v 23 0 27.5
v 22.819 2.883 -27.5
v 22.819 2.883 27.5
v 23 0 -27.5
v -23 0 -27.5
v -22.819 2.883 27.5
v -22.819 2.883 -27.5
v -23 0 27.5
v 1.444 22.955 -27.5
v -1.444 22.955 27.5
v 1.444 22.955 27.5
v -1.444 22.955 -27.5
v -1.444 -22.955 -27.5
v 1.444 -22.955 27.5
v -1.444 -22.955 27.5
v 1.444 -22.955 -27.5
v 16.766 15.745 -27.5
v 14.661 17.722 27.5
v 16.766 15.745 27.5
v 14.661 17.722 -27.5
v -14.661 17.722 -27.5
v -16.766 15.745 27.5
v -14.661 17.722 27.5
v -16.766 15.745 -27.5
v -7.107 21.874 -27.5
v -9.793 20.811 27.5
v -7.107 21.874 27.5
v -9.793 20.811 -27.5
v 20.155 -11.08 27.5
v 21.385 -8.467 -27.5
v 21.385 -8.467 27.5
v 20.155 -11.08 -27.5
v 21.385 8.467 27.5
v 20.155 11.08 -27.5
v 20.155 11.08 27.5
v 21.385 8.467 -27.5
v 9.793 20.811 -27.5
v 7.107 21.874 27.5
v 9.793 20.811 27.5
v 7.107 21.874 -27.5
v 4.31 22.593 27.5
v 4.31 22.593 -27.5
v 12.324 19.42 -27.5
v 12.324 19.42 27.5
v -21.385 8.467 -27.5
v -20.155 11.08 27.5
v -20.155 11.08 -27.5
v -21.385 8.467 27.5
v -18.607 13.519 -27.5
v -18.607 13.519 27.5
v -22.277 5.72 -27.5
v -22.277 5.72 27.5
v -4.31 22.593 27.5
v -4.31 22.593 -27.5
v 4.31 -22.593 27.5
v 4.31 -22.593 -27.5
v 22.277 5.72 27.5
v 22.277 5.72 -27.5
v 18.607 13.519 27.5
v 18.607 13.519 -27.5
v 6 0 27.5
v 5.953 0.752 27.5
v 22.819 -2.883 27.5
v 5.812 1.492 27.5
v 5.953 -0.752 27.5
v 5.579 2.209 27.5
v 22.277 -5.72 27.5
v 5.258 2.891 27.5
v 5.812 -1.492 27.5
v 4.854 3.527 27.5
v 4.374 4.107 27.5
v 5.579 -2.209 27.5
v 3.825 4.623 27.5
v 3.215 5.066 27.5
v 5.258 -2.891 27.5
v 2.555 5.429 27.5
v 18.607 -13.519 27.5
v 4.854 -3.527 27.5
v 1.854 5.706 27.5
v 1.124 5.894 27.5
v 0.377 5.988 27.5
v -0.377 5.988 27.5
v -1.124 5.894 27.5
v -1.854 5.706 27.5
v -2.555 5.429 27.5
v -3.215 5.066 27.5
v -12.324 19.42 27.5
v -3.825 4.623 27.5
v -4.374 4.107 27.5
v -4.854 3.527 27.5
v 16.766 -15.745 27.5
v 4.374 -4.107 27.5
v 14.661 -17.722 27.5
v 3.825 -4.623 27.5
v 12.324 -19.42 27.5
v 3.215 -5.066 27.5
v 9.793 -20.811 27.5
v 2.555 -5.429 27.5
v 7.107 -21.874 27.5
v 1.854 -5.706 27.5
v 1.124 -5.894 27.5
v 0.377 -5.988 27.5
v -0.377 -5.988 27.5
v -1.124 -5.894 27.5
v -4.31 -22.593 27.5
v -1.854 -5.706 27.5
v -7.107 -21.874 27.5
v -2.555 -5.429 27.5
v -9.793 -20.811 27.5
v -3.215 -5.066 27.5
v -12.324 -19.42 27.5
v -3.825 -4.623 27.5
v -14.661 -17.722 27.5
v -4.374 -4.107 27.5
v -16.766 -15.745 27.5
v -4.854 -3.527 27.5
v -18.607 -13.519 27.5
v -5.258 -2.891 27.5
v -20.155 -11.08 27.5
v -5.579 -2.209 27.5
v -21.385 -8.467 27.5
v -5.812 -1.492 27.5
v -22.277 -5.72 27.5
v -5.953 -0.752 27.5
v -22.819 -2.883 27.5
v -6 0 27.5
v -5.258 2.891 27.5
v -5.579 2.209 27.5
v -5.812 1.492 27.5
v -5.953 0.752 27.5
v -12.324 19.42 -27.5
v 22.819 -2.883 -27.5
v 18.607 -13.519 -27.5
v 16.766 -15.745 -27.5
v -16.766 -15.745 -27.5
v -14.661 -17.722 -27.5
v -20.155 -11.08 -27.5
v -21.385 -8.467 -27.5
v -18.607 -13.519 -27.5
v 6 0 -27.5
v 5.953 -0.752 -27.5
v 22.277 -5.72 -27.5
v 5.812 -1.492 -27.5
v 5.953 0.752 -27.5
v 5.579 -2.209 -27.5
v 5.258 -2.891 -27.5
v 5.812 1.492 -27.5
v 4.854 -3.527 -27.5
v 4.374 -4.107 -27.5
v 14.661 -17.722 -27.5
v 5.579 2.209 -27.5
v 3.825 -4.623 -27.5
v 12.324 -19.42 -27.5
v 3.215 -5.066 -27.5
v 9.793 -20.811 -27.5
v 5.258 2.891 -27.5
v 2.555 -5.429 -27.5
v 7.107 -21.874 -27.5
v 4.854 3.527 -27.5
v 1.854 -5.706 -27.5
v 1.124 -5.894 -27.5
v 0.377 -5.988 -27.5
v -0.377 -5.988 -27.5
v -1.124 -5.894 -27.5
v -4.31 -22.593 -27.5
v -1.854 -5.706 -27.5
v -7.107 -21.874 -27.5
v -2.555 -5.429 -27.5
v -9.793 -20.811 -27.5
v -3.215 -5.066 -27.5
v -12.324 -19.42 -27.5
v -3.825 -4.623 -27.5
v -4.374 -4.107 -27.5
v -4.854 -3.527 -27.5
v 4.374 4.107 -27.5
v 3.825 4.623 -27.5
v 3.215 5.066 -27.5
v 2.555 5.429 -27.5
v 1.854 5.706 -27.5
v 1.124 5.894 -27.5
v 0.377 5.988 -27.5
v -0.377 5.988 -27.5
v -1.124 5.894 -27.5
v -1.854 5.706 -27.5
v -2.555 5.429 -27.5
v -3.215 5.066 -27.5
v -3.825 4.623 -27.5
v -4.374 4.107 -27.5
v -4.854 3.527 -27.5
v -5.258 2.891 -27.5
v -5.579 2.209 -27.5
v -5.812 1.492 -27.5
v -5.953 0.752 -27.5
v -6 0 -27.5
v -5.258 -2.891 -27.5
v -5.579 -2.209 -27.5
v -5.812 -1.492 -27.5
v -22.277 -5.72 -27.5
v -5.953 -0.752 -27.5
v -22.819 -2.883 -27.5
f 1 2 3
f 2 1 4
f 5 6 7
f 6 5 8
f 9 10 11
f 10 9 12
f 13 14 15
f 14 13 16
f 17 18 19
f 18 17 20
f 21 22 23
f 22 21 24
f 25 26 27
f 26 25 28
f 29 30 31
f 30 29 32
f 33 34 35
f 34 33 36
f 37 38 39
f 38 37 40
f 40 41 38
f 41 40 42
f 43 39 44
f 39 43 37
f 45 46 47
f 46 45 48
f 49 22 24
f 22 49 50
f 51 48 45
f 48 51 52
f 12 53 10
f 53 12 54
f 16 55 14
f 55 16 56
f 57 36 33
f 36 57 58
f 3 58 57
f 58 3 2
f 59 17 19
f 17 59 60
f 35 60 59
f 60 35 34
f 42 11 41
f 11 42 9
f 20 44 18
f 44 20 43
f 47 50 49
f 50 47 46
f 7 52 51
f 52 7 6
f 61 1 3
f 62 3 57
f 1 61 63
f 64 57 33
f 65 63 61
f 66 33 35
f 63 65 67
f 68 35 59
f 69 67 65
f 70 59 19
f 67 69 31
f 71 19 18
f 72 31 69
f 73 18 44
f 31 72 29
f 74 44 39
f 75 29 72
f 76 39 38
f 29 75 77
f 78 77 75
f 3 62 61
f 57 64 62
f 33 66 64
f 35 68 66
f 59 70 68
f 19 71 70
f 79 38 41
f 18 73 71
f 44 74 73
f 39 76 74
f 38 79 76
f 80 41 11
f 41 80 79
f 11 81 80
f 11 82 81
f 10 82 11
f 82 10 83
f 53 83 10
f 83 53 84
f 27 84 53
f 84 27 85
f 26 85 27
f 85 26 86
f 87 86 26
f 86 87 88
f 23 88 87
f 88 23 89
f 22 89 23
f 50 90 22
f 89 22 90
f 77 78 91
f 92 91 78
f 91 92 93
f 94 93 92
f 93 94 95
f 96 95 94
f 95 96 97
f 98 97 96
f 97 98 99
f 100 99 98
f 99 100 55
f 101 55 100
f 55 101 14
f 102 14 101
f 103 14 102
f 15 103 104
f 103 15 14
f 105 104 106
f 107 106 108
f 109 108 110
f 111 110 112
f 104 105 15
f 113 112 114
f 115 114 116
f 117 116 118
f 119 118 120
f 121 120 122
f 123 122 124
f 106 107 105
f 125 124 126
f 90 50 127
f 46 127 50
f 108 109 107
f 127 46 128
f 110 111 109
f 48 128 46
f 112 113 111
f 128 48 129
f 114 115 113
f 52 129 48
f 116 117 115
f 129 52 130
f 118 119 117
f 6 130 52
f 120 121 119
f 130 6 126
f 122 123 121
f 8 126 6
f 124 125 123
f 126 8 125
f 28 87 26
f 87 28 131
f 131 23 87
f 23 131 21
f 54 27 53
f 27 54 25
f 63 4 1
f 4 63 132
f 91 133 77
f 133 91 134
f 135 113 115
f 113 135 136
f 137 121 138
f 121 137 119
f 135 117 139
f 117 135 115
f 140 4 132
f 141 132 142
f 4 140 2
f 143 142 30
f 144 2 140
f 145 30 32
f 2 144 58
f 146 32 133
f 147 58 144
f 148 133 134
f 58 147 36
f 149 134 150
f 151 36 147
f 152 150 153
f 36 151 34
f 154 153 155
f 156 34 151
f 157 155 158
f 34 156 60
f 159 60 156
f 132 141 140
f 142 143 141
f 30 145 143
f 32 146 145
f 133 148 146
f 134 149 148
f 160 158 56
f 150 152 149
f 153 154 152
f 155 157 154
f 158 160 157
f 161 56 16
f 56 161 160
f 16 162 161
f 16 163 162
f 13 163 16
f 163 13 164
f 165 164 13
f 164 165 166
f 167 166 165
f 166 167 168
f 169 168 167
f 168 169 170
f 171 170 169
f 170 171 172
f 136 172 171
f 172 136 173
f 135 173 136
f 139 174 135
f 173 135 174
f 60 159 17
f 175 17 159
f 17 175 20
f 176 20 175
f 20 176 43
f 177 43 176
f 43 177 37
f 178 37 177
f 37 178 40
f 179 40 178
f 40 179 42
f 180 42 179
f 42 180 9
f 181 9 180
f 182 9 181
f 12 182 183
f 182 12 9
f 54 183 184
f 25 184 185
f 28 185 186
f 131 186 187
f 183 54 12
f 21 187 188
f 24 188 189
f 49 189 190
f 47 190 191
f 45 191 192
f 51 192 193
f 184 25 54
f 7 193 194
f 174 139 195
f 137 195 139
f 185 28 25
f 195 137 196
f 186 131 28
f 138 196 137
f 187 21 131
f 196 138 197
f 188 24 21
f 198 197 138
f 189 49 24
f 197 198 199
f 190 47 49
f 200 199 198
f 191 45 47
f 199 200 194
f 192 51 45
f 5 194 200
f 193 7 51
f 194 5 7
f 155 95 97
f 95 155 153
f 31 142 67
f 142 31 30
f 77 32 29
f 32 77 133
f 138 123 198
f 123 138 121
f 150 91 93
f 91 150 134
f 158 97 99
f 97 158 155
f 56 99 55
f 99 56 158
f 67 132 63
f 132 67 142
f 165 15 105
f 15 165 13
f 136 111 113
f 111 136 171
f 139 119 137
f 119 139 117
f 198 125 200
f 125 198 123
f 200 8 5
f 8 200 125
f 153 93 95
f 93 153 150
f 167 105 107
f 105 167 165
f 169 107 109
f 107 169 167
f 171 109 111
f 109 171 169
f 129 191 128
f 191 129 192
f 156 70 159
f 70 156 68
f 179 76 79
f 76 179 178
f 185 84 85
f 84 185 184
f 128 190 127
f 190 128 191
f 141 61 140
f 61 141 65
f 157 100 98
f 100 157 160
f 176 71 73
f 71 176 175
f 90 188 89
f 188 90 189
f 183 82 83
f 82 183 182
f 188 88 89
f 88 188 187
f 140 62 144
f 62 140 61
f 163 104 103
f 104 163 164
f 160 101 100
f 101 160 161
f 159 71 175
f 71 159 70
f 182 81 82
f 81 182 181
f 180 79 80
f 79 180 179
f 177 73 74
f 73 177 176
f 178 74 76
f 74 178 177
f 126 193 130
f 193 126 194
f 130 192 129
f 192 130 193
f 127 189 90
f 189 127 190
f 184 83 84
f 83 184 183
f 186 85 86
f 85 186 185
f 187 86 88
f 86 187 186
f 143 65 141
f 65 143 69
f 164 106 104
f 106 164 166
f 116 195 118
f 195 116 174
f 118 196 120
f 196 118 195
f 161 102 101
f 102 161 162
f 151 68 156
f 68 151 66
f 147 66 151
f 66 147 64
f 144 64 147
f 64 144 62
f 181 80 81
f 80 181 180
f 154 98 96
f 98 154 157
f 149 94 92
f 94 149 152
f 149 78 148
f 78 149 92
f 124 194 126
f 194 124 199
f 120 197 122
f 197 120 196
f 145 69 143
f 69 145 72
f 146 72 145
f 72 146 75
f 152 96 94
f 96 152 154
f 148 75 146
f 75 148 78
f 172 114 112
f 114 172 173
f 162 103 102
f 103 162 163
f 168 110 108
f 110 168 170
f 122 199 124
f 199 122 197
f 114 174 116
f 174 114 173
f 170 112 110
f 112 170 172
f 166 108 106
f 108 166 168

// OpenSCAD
$fn = 50;


difference() {
	union() {
		translate(v = [0, 0, -27.5000000000]) {
			cylinder(h = 55, r = 23.0000000000);
		}
	}
	union() {
		translate(v = [0, 0, -100.0000000000]) {
			cylinder(h = 200, r = 6);
		}
	}
}
